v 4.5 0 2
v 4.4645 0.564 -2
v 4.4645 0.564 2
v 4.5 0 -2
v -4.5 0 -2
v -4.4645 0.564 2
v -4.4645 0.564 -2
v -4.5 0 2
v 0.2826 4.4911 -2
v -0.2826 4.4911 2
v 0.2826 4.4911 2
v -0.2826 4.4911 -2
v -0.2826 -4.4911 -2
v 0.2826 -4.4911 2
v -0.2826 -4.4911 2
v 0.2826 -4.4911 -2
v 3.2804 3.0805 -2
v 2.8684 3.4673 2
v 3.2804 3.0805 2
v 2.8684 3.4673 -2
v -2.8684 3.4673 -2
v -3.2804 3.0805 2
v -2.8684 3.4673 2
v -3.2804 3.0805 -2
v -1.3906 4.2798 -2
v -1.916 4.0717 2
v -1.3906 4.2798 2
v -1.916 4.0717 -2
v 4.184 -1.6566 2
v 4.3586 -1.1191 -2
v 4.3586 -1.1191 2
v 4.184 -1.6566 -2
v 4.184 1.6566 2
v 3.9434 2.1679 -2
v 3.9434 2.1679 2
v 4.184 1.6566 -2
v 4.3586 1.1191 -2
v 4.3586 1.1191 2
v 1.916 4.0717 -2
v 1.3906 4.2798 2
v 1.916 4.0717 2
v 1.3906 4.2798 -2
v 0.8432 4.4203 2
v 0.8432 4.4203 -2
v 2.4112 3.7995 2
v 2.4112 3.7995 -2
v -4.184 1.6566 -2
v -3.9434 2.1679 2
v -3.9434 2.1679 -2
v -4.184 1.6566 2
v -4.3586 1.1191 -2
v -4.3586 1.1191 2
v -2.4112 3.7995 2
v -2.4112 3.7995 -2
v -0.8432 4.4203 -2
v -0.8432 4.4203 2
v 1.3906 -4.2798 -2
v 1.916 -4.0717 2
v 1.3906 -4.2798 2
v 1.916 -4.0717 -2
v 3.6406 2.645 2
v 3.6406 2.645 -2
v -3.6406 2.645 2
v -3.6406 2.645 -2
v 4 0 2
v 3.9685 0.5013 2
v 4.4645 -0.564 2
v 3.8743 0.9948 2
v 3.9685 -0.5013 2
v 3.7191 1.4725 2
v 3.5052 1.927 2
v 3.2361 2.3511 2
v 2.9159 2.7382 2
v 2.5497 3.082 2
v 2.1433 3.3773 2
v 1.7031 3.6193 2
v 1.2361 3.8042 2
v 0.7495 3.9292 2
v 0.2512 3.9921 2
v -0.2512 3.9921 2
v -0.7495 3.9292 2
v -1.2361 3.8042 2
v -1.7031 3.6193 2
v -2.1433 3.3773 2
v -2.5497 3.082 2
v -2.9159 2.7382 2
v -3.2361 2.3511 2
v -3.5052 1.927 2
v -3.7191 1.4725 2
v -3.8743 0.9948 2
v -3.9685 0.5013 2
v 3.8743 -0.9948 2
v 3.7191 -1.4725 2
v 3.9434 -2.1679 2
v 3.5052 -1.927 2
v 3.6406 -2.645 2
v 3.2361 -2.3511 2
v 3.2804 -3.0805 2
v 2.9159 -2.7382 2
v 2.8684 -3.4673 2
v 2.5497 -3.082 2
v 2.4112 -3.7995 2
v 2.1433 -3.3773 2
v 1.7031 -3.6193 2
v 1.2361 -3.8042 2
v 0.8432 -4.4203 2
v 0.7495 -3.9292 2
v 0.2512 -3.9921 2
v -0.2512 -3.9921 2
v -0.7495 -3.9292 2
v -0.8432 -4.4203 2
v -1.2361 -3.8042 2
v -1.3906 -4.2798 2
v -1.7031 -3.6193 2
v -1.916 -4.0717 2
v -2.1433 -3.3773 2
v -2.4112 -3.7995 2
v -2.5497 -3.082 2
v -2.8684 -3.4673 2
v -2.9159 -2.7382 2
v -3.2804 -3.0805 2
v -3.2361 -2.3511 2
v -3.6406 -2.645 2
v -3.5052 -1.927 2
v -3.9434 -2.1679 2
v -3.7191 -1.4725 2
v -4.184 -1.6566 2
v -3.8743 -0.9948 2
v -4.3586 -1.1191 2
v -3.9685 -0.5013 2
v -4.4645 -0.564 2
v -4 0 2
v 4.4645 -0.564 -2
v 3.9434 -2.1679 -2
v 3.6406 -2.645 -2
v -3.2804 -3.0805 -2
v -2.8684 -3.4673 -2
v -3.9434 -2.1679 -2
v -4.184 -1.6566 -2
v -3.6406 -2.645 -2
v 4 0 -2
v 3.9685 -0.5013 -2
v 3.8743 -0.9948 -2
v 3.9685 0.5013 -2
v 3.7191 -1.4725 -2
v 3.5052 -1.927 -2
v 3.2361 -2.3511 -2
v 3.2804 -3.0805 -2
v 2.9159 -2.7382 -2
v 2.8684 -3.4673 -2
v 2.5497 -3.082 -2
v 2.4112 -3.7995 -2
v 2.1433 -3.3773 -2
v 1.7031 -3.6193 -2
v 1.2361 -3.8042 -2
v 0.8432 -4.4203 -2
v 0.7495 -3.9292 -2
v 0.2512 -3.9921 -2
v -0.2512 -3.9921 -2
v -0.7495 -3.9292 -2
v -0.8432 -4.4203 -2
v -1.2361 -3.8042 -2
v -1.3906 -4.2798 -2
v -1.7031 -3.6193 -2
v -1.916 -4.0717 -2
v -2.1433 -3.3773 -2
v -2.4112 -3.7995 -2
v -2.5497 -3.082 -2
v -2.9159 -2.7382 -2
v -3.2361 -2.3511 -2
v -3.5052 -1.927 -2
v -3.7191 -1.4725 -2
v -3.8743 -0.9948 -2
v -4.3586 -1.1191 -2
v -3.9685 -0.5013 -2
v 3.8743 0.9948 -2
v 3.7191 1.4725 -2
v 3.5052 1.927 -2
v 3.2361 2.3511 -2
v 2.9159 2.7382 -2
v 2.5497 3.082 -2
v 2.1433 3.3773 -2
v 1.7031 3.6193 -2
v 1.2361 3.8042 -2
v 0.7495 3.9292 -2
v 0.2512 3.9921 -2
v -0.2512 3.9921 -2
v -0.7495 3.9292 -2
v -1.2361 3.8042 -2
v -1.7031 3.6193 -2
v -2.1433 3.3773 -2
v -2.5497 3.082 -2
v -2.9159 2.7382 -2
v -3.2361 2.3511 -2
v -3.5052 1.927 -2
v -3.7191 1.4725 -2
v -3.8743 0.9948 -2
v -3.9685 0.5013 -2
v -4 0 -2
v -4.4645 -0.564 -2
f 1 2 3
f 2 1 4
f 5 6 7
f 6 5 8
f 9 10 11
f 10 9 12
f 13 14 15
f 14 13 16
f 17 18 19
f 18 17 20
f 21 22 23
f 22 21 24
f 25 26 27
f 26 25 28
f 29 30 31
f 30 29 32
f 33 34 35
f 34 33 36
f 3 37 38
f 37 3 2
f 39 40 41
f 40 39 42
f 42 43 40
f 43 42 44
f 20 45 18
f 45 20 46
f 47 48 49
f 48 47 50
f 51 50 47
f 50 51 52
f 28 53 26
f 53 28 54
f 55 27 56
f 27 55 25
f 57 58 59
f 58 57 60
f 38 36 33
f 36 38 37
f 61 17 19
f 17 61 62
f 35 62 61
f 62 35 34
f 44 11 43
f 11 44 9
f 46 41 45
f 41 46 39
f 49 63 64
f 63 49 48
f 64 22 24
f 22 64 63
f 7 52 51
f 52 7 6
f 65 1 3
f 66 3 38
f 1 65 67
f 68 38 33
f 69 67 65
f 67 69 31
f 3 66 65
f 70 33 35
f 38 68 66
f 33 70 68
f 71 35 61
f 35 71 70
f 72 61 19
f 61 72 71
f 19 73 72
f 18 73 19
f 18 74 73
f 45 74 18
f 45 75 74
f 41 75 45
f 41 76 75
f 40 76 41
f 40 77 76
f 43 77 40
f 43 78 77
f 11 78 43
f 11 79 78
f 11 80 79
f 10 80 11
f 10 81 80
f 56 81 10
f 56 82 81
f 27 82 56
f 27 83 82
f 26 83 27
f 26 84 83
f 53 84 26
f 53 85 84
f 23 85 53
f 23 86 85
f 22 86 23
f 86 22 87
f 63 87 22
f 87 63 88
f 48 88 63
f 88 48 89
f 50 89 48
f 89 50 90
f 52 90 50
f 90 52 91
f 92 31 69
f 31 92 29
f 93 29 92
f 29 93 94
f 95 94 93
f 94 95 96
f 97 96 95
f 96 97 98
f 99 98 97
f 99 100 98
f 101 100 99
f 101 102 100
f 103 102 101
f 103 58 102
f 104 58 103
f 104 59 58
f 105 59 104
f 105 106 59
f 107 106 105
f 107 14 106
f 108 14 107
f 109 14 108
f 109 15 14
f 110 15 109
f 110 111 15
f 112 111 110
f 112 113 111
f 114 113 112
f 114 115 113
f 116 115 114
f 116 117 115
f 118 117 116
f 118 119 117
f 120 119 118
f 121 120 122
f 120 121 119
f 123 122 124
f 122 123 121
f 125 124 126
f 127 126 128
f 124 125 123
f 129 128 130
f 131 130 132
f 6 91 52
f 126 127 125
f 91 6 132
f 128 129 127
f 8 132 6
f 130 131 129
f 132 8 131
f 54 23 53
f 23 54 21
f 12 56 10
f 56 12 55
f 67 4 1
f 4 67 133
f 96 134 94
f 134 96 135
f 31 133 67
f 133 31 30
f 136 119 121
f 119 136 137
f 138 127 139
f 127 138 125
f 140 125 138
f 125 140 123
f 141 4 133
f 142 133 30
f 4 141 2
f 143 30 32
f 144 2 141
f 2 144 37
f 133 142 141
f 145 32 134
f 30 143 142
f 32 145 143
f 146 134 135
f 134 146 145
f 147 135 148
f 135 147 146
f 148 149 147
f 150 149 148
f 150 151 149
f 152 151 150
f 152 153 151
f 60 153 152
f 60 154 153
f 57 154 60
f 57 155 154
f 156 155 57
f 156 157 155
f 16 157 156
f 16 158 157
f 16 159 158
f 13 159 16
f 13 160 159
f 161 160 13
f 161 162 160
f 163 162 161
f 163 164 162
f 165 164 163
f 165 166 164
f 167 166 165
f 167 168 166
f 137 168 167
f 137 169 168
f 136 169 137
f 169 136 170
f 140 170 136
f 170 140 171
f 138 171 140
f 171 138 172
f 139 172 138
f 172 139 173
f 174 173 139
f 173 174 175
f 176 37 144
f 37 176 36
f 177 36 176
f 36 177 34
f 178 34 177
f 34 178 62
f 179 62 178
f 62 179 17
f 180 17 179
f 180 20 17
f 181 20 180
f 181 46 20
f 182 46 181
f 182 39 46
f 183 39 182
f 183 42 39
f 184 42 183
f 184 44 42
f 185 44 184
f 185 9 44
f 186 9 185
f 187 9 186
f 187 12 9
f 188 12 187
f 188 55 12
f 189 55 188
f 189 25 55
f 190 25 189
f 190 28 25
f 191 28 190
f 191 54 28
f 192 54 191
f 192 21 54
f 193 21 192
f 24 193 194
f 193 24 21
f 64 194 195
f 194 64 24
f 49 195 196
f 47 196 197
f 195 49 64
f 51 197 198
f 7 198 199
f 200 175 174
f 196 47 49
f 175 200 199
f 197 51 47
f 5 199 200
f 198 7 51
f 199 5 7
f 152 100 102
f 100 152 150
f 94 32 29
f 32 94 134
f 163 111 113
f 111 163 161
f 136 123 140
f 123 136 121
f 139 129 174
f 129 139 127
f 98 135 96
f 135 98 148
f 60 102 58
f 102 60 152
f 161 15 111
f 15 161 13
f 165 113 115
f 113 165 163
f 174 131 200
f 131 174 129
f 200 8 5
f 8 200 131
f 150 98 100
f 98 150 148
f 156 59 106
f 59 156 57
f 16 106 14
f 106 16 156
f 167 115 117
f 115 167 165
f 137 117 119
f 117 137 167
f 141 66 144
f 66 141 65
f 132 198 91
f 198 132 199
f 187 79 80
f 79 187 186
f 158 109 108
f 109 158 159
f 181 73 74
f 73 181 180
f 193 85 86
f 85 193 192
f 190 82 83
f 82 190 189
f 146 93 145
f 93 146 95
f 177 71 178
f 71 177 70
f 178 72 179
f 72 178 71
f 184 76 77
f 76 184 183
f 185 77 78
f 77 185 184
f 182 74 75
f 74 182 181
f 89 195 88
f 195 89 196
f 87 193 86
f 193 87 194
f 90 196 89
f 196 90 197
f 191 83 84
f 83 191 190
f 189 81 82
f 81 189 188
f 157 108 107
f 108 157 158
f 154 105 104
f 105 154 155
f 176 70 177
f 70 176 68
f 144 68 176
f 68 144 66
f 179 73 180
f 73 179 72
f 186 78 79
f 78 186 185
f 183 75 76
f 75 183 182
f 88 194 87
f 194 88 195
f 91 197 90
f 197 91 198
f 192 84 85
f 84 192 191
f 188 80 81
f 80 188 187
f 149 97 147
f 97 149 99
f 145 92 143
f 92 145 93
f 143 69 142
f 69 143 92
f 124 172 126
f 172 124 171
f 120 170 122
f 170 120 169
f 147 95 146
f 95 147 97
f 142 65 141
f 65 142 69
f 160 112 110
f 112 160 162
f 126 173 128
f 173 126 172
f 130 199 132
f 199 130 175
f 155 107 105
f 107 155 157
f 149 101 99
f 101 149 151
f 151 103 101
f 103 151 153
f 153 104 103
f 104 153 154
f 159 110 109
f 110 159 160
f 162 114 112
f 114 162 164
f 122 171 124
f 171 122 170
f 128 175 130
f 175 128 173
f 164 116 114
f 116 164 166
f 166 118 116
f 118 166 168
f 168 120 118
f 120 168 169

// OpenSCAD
$fn = 50;


difference() {
	union() {
		translate(v = [0, 0, -2.0000000000]) {
			cylinder(h = 4, r = 4.5000000000);
		}
	}
	union() {
		translate(v = [0, 0, -100.0000000000]) {
			cylinder(h = 200, r = 4);
		}
	}
}
